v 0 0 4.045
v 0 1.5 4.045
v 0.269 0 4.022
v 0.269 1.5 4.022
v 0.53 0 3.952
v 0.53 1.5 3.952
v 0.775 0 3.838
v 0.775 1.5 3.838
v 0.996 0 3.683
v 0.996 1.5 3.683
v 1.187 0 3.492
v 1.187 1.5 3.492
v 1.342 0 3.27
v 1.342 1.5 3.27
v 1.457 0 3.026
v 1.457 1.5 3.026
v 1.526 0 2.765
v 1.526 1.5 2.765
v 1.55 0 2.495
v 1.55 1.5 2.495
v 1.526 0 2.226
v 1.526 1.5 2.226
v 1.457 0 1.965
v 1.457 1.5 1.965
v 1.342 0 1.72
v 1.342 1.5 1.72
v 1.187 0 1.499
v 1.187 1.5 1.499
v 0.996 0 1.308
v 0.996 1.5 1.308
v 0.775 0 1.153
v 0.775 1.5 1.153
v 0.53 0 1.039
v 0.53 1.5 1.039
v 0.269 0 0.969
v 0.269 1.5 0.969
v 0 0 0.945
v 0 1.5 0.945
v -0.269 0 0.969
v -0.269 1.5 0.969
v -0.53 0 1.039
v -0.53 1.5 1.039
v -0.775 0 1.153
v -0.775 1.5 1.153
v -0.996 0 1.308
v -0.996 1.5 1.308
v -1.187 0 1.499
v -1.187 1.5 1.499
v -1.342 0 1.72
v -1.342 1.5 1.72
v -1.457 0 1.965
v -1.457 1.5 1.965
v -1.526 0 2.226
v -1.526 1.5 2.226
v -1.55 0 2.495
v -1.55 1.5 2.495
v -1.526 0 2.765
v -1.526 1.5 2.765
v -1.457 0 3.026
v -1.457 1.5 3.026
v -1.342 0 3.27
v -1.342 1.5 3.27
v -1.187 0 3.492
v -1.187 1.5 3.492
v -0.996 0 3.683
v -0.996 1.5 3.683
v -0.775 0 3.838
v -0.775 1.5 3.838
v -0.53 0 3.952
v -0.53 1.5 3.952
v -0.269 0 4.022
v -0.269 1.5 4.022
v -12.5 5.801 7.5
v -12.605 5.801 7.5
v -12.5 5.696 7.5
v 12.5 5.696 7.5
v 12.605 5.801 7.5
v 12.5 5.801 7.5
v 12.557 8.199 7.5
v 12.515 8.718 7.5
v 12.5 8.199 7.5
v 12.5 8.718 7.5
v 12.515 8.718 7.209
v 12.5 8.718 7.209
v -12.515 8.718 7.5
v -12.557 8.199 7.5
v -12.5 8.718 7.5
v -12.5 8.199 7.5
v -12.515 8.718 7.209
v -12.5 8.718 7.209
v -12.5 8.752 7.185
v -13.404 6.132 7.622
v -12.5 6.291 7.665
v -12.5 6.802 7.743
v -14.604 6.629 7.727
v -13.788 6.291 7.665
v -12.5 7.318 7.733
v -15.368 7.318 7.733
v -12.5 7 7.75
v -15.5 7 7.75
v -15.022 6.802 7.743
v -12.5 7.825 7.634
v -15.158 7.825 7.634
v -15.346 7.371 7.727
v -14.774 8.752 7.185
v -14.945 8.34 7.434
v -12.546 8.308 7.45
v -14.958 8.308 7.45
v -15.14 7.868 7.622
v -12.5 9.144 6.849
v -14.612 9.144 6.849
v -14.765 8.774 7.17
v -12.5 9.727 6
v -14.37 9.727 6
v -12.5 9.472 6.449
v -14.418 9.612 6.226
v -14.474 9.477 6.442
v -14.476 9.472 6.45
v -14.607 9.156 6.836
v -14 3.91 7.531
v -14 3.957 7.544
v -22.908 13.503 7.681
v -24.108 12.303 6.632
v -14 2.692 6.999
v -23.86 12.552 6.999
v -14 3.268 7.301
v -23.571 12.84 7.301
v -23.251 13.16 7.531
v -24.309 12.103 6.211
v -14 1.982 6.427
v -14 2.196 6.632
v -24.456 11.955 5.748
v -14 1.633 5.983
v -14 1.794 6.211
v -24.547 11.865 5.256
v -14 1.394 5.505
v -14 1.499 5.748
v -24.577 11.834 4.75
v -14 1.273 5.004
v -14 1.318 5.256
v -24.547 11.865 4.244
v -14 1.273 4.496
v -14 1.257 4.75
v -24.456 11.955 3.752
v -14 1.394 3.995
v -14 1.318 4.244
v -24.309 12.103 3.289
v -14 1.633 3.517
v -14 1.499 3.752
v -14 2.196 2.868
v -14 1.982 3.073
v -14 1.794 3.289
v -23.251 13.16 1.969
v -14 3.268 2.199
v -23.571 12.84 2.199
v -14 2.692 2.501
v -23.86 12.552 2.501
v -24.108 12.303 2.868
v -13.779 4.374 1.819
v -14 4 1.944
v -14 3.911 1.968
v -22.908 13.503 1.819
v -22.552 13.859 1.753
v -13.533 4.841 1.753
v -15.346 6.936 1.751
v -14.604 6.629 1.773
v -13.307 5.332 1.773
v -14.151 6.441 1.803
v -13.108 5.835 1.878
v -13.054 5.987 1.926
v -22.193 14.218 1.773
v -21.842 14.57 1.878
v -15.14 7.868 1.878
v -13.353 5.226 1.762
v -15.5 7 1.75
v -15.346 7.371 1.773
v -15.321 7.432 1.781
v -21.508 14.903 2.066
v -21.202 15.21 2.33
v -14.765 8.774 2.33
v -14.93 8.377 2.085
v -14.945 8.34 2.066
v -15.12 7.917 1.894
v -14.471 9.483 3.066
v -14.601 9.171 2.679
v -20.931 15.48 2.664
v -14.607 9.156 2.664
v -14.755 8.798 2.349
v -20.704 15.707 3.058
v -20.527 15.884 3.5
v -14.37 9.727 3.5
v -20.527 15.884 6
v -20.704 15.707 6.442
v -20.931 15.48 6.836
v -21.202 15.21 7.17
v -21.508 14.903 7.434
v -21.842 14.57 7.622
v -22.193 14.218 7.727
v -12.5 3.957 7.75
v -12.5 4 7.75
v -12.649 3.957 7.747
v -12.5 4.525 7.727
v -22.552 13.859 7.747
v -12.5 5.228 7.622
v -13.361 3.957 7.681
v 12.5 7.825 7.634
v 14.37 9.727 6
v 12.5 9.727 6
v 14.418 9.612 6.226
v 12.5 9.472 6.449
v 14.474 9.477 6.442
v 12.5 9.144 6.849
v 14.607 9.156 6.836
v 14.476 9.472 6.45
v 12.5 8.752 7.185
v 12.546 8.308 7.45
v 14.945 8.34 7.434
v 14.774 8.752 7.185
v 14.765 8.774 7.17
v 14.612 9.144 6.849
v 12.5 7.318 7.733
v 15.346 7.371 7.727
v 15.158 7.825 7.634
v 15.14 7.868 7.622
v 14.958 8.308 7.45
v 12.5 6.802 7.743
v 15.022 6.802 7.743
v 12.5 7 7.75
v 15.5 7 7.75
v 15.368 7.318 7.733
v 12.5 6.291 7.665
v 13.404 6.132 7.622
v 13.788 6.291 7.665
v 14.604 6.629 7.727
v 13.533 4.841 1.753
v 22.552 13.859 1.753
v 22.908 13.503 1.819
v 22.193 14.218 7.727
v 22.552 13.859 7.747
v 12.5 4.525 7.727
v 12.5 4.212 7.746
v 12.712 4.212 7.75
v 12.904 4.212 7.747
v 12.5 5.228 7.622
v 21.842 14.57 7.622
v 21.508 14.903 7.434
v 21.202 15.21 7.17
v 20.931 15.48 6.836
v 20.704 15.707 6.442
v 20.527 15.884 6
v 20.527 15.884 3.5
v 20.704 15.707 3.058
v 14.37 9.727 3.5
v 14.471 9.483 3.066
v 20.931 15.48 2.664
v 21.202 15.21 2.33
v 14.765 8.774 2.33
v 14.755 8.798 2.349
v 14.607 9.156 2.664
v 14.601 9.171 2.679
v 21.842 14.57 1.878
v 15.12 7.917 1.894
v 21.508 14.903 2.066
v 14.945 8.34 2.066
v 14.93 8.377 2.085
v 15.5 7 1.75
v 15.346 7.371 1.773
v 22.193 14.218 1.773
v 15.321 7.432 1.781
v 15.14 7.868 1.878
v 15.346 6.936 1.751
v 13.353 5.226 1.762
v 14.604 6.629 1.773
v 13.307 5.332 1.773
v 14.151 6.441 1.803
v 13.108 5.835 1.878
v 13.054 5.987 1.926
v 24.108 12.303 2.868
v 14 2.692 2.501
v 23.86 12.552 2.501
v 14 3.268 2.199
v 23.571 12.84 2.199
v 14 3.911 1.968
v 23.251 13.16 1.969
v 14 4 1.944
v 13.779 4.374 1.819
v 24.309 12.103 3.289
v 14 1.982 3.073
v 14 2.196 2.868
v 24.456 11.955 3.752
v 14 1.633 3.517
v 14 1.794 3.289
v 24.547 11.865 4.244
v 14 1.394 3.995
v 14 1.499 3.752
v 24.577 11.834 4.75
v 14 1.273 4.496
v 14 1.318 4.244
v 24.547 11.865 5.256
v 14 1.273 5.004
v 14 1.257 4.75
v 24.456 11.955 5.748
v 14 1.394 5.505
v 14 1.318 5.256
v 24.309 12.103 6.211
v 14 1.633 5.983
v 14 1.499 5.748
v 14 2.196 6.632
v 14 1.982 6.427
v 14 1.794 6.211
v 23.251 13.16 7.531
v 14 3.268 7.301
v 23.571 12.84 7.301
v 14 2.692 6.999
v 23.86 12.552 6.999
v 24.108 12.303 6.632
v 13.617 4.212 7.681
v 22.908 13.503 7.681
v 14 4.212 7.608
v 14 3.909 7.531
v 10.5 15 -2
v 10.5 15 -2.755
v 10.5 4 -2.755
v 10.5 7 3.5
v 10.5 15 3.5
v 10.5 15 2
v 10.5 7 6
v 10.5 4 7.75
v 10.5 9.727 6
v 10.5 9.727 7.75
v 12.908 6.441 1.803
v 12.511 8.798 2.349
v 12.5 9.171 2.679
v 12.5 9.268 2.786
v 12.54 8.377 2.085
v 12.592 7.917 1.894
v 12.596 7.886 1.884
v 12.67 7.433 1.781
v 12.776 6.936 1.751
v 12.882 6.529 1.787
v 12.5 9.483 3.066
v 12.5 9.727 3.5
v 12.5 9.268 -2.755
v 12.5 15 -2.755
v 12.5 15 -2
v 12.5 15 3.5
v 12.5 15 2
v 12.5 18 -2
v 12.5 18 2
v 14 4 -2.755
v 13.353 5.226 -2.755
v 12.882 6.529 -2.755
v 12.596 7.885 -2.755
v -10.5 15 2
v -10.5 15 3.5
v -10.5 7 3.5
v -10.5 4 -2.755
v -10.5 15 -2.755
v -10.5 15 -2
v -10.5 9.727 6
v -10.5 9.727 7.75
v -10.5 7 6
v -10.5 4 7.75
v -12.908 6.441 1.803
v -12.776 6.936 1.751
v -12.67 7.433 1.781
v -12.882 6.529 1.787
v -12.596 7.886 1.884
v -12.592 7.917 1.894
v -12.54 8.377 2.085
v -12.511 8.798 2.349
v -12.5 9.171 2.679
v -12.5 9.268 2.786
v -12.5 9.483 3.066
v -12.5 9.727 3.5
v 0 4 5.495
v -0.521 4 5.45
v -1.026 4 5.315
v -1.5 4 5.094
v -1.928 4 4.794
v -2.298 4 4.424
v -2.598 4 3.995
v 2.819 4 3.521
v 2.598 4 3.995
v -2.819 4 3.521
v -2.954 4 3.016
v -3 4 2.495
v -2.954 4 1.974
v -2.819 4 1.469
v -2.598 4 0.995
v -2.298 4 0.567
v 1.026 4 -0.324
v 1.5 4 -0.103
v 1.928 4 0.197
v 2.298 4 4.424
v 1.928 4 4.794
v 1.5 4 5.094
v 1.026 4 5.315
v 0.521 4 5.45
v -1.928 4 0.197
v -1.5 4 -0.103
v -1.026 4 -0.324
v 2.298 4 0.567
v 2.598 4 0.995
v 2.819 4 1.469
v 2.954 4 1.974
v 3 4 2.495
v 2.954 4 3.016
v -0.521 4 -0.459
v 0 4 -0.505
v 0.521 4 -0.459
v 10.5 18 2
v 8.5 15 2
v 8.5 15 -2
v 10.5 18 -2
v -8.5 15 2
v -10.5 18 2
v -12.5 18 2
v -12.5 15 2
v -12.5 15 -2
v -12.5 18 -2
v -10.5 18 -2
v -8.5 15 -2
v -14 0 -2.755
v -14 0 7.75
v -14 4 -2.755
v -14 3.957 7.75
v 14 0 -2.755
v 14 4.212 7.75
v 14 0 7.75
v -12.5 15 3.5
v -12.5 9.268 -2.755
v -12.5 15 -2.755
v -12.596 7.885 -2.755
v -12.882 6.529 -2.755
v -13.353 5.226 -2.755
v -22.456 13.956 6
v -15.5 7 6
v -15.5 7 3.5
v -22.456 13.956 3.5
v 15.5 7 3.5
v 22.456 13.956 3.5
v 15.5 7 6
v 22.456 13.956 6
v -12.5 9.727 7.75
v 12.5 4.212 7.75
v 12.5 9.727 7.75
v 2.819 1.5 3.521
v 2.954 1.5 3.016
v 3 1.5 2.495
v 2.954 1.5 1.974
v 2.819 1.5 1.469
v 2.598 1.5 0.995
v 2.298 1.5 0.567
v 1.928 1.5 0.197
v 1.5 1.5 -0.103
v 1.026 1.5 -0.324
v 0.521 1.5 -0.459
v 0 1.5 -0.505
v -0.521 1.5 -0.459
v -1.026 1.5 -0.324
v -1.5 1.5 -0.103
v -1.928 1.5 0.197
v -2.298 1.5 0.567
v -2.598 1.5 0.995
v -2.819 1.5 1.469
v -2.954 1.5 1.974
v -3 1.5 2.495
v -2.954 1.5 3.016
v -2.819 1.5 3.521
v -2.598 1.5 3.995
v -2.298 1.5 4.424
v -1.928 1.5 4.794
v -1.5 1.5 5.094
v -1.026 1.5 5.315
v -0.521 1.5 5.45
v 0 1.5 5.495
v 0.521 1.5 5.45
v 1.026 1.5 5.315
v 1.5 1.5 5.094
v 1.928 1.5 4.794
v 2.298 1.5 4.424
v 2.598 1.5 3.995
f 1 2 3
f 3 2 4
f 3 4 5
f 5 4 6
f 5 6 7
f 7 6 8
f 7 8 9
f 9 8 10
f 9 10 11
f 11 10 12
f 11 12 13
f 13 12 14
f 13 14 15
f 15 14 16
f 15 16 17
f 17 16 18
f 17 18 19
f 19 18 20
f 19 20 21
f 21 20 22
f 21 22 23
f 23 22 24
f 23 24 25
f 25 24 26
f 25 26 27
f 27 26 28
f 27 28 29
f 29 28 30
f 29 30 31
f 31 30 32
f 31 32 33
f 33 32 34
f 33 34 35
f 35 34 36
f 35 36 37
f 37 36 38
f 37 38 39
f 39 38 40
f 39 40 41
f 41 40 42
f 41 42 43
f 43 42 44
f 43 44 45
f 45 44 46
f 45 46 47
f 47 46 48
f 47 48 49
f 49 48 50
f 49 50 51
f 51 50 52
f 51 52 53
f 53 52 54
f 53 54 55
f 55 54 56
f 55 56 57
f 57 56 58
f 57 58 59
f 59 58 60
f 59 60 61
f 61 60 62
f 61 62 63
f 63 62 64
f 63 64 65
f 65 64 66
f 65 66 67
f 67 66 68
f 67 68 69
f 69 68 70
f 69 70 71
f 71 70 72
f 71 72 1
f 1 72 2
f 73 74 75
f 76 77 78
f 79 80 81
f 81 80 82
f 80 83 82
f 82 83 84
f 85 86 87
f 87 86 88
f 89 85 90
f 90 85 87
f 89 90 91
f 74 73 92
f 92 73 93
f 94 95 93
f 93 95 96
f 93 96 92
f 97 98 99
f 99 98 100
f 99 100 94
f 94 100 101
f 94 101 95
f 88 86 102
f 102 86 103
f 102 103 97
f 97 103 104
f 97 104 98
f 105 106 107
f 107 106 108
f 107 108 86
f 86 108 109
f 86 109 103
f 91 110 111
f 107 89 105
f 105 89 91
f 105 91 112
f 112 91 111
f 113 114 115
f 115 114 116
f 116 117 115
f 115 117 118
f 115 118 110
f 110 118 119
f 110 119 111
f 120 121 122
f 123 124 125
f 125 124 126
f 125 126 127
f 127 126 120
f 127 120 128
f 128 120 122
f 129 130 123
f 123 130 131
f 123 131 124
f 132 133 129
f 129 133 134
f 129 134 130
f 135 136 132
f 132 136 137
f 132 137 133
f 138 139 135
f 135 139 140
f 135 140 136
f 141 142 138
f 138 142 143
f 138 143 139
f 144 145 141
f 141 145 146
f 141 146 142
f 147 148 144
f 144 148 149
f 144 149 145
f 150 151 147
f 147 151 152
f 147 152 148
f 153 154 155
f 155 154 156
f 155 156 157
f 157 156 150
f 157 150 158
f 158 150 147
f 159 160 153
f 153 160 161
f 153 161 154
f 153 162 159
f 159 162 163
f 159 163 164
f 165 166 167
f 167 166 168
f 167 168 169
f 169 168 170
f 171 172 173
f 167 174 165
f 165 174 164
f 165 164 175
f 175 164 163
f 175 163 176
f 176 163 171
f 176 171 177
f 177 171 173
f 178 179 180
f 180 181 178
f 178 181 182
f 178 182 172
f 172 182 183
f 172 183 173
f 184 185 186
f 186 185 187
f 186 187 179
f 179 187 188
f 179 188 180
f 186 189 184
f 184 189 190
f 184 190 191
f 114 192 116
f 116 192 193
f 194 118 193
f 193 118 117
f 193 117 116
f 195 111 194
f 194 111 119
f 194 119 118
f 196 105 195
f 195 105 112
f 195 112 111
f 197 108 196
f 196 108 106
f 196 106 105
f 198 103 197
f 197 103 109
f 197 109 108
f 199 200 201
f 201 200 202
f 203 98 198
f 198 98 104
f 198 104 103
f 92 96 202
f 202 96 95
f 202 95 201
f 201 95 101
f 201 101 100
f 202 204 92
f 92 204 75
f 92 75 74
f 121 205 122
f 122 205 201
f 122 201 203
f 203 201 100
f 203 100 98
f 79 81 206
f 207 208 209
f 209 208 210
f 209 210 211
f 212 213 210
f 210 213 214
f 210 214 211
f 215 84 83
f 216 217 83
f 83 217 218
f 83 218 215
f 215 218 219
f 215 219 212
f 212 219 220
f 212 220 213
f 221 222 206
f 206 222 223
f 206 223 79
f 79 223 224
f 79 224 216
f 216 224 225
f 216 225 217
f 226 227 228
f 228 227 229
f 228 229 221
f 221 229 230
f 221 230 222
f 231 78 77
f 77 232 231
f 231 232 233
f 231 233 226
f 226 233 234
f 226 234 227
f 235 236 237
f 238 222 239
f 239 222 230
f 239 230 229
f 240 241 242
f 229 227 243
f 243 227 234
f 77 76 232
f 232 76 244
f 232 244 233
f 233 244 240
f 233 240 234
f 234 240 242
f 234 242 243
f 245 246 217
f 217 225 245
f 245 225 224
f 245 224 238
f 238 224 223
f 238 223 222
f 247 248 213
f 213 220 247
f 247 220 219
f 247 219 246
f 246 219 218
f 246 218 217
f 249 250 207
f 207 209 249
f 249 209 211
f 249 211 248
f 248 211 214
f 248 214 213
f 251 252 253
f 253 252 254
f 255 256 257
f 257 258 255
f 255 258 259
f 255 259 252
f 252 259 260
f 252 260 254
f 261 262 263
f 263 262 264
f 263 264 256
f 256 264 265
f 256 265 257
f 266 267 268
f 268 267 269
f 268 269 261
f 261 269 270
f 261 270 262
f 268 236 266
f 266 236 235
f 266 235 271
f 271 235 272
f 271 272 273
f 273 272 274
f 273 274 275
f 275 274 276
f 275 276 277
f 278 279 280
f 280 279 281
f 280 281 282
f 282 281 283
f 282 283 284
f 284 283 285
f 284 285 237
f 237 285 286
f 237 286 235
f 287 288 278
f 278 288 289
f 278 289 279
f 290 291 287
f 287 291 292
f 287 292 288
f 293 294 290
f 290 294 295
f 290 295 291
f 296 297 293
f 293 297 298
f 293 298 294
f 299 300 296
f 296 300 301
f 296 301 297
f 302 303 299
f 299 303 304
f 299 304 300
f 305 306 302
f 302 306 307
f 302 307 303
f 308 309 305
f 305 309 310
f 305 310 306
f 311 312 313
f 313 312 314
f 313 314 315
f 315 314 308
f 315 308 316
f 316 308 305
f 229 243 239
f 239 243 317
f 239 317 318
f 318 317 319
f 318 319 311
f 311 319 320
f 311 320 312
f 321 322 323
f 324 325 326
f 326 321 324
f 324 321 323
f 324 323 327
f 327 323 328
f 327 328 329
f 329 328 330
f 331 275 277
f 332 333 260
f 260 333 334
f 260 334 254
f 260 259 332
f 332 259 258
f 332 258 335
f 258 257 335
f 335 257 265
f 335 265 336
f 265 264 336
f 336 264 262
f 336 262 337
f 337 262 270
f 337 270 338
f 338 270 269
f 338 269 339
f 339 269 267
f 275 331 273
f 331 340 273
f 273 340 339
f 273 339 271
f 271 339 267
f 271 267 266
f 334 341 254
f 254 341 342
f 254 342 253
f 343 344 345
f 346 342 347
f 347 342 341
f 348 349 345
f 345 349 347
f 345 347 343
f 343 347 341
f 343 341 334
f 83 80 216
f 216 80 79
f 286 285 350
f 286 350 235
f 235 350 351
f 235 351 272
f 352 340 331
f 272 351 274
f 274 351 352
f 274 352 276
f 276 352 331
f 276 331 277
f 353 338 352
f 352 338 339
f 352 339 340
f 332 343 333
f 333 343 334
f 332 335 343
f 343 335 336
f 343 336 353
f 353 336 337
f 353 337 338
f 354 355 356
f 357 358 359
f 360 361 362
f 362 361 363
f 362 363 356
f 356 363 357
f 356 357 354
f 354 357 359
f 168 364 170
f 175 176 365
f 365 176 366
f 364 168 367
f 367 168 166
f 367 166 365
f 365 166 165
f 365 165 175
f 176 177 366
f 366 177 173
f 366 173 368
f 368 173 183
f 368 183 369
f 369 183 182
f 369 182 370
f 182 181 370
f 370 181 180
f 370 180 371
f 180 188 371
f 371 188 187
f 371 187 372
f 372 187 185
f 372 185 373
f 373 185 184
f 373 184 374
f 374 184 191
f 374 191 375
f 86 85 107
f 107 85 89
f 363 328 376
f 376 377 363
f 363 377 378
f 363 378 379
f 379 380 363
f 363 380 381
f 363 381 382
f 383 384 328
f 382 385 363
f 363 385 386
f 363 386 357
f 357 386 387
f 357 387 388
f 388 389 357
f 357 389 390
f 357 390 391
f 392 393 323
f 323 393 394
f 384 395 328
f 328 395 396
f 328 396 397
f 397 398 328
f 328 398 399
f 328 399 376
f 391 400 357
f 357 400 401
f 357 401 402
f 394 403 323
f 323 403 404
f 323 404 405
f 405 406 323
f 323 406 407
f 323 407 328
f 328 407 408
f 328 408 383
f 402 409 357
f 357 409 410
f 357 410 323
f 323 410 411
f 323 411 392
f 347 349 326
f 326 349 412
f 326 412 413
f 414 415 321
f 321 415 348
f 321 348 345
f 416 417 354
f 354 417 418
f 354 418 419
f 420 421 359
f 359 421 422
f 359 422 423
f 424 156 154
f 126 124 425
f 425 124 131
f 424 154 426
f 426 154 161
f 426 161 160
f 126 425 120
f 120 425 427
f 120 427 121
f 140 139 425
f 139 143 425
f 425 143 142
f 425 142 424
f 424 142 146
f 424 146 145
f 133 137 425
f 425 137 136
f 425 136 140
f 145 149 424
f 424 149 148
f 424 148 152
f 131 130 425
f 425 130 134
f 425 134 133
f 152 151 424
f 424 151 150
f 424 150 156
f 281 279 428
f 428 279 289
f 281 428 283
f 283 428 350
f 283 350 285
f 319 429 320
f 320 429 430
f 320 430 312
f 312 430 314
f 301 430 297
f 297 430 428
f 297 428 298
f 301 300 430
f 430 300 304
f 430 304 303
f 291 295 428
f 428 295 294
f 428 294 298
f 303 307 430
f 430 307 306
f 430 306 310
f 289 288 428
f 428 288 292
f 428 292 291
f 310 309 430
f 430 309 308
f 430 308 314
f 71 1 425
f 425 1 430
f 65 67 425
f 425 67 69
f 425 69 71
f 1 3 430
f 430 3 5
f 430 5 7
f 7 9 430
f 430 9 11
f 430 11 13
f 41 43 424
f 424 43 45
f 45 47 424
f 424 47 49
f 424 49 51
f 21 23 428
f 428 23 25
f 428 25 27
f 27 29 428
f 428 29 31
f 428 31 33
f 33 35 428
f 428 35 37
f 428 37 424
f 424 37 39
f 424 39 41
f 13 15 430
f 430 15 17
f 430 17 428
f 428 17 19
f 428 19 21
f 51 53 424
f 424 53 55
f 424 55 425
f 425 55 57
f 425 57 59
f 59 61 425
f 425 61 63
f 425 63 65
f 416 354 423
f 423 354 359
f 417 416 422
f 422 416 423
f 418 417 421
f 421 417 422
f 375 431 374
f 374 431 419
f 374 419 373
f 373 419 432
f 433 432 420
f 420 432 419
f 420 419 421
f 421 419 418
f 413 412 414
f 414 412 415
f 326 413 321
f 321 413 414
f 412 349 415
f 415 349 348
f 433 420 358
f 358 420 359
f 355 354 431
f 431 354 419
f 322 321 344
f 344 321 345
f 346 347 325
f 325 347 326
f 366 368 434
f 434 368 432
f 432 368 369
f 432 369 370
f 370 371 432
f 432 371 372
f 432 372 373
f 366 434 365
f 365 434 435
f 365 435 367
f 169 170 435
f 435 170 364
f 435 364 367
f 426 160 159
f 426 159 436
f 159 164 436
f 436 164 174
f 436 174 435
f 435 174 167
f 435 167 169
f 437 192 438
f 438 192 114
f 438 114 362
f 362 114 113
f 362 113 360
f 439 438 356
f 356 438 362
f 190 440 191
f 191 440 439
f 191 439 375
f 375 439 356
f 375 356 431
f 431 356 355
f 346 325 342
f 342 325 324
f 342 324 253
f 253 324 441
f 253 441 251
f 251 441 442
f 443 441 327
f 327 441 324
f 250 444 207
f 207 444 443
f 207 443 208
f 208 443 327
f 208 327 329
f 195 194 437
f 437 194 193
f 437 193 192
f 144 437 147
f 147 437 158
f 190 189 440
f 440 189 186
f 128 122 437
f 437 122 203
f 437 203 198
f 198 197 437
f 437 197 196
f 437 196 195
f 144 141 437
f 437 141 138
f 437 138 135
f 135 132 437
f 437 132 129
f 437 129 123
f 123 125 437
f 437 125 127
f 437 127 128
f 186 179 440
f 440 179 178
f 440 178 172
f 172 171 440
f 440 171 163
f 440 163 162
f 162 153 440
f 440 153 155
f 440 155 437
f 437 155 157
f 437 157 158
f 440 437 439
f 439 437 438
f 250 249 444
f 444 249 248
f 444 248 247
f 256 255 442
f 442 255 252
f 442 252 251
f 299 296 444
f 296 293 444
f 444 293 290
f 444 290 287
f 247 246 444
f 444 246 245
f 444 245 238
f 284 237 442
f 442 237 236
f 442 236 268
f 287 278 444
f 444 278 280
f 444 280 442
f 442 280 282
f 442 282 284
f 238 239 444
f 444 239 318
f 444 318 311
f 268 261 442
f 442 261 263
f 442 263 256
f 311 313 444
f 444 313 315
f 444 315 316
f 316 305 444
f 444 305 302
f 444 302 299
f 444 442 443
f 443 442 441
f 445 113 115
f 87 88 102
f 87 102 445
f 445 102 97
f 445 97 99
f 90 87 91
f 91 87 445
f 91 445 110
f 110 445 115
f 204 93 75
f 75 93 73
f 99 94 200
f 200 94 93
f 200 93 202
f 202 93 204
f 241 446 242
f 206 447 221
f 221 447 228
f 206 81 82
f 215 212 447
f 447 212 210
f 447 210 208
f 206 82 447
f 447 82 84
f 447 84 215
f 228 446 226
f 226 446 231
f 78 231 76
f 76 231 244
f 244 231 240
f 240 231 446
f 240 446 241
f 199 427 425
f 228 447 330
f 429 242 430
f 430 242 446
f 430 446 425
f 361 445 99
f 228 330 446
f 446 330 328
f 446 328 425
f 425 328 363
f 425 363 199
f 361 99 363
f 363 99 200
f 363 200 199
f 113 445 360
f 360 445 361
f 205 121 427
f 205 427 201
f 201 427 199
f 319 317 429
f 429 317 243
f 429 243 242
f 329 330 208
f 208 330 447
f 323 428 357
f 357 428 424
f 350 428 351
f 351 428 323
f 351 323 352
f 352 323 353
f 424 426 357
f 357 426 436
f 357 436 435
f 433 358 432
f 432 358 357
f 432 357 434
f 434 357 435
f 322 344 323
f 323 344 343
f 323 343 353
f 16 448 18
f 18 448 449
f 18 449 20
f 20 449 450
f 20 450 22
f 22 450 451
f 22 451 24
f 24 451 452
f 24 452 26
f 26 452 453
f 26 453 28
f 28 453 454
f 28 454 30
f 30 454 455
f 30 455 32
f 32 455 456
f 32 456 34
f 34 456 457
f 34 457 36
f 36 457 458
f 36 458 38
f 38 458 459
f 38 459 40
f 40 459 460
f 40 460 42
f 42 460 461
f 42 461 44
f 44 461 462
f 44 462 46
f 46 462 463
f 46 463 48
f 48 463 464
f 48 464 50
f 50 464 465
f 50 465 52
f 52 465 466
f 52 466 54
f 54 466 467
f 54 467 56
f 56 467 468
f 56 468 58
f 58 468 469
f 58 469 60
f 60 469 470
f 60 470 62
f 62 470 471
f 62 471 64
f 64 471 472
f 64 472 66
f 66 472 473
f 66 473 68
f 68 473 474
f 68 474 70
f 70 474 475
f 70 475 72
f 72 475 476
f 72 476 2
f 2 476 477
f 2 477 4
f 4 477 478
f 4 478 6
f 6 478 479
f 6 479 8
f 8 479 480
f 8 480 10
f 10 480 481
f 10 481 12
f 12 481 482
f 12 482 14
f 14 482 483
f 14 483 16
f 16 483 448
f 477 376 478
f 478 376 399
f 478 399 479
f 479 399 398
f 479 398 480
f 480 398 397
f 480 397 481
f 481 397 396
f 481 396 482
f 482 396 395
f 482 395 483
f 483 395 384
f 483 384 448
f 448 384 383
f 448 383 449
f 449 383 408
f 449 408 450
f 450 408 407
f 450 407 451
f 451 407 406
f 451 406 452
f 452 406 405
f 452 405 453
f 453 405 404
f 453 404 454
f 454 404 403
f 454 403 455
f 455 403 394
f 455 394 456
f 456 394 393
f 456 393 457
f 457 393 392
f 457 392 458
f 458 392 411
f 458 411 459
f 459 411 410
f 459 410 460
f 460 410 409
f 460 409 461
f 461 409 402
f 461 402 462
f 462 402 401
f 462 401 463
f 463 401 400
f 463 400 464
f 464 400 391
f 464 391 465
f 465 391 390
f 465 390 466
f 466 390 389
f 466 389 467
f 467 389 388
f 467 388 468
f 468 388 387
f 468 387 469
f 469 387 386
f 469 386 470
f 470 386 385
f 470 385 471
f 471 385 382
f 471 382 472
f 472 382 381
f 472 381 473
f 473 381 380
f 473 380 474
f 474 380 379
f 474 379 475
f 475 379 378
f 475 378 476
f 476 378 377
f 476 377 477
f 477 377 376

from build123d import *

# Parameters (mm, degrees)
SKETCH1_W                           = 28
SKETCH1_H                           = 15
BOSS_EXTRUDE1_DEPTH                 = 4
SKETCH2_W                           = 2
SKETCH2_H                           = 14
BOSS_EXTRUDE2_DEPTH                 = 2
SKETCH3_W                           = 2
SKETCH3_H                           = 11
BOSS_EXTRUDE3_DEPTH                 = 7.5
FILLET1_R                           = 10
CUT_EXTRUDE5_REACH                  = 33.313
CUT_EXTRUDE5_END_RADIUS             = 10
CUT_EXTRUDE5_DIRECTION_2_REACH      = 33.313
CUT_EXTRUDE5_DIRECTION_2_END_RADIUS = 10
BOSS_EXTRUDE4_DEPTH                 = 5
CUT_EXTRUDE6_DEPTH                  = 2
CUT_EXTRUDE6_DEPTH_BACK             = 15
SKETCH22_W                          = 21
SKETCH22_H                          = 5.222778623
BOSS_EXTRUDE6_START                 = -1.5
BOSS_EXTRUDE6_DEPTH                 = 1.75
CUT_EXTRUDE7_REACH                  = 43.938
SKETCH25_W                          = 4.745430675
SKETCH25_H                          = 15
CUT_EXTRUDE7_DIRECTION_2_REACH      = 43.938
SKETCH26_R                          = 1.55
CUT_EXTRUDE8_DEPTH                  = 4
SKETCH27_R                          = 3
CUT_EXTRUDE9_DEPTH                  = 2.5


with BuildPart() as part:
    # Sketch1 → Boss-Extrude1 (new body)
    with BuildSketch(Plane(origin=(0, 0, 0), x_dir=(1, 0, 0), z_dir=(0, 1, 0))):
        Rectangle(SKETCH1_W, SKETCH1_H)
    extrude(amount=BOSS_EXTRUDE1_DEPTH)

    # Sketch2 → Boss-Extrude2 (add, symmetric)
    with BuildSketch(Plane.XY):
        with Locations((-11.5, 11)):
            Rectangle(SKETCH2_W, SKETCH2_H)
        Polygon((-8.5, 15), (-10.5, 18), (-10.5, 15), align=None)
        Polygon((8.5, 15), (10.5, 15), (10.5, 18), align=None)
        with Locations((11.5, 11)):
            Rectangle(SKETCH2_W, SKETCH2_H)
    extrude(amount=BOSS_EXTRUDE2_DEPTH, both=True)

    # Sketch3 → Boss-Extrude3 (add, symmetric)
    with BuildSketch(Plane.XY):
        with Locations((-11.5, 9.5)):
            Rectangle(SKETCH3_W, SKETCH3_H)
        with Locations((11.5, 9.5)):
            Rectangle(SKETCH3_W, SKETCH3_H)
    extrude(amount=BOSS_EXTRUDE3_DEPTH, both=True)

    # Fillet1
    # the kernel refuses this fillet: 10 mm, written as the material it adds along each edge
    with BuildSketch(Plane(origin=(12.5, 4, -7.5), x_dir=(1, 0, 0), z_dir=(0, 0, 1))) as fillet1_piece_1:
        with BuildLine():
            CenterArc((10, 5.267826876), FILLET1_R, 180, 31.788330617)
            Line((0, 5.267826876), (-0.2, 5.267826876))
            Line((-0.2, 5.267826876), (-0.2, 0))
            Line((-0.2, 0), (0, -0.2))
            ThreePointArc((0, -0.2), (0.75, -0.2), (1.33, -0.105356538))
            Line((1.33, -0.105356538), (1.5, 0))
        make_face()
    extrude(amount=15)
    with BuildSketch(Plane(origin=(-12.5, 4, 7.5), x_dir=(0, 1, 0), z_dir=(0, 0, -1))) as fillet1_piece_2:
        with BuildLine():
            CenterArc((5.267826876, -10), FILLET1_R, 90, 31.788330617)
            Line((0, -1.5), (-0.105356538, -1.33))
            ThreePointArc((-0.105356538, -1.33), (-0.2, -0.75), (-0.2, 0))
            Line((-0.2, 0), (0, 0.2))
            Line((0, 0.2), (5.267826876, 0.2))
            Line((5.267826876, 0.2), (5.267826876, 0))
        make_face()
    extrude(amount=15)

    # Cut-Extrude5: up to this cylinder (the profile starts outside it)
    cut_extrude5_end = Plane(origin=(-22.5, 9.267826876, 5.390493), z_dir=(0, 0, -1)) * Cylinder(CUT_EXTRUDE5_END_RADIUS, 87.626, mode=Mode.PRIVATE)
    # Sketch13 → Cut-Extrude5 (cut, up to the surface)
    with BuildSketch(Plane(origin=(-10.5, 0, 0), x_dir=(0, 0, -1), z_dir=(1, 0, 0)), mode=Mode.PRIVATE) as cut_extrude5_sk1:
        Polygon((-3.5, 15), (-6, 15), (-7.5, 15), (-7.5, 8.718379218), (-6, 8.718379218), (-6, 7), (-3.5, 7), align=None)
    cut_extrude5_tool1 = extrude(cut_extrude5_sk1.sketch, amount=-CUT_EXTRUDE5_REACH, mode=Mode.PRIVATE) - cut_extrude5_end
    add(cut_extrude5_tool1.solids().sort_by_distance((-10.5, 11.275152, 5.390493))[0], mode=Mode.SUBTRACT)

    # Cut-Extrude5 direction 2: up to this cylinder (the profile starts outside it)
    cut_extrude5_direction_2_end = Plane(origin=(22.5, 9.267826876, 5.390493), z_dir=(0, 0, 1)) * Cylinder(CUT_EXTRUDE5_DIRECTION_2_END_RADIUS, 87.626, mode=Mode.PRIVATE)
    # Sketch13 → Cut-Extrude5 direction 2 (cut, up to the surface)
    with BuildSketch(Plane(origin=(-10.5, 0, 0), x_dir=(0, 0, -1), z_dir=(1, 0, 0)), mode=Mode.PRIVATE) as cut_extrude5_direction_2_sk1:
        Polygon((-3.5, 15), (-6, 15), (-7.5, 15), (-7.5, 8.718379218), (-6, 8.718379218), (-6, 7), (-3.5, 7), align=None)
    cut_extrude5_direction_2_tool1 = extrude(cut_extrude5_direction_2_sk1.sketch, amount=CUT_EXTRUDE5_DIRECTION_2_REACH, mode=Mode.PRIVATE) - cut_extrude5_direction_2_end
    add(cut_extrude5_direction_2_tool1.solids().sort_by_distance((-10.5, 11.275152, 5.390493))[0], mode=Mode.SUBTRACT)

    # Sketch14 → Boss-Extrude4 (add)
    with BuildSketch(Plane(origin=(-10.5, 0, 0), x_dir=(0, 0, -1), z_dir=(1, 0, 0))):
        with BuildLine():
            Line((-3.5, 9.727178029), (-3.5, 7))
            Line((-3.5, 7), (-6, 7))
            Line((-6, 7), (-6, 9.727178029))
            ThreePointArc((-6, 9.727178029), (-4.75, 4), (-3.5, 9.727178029))
        make_face()
    boss_extrude4 = extrude(amount=-BOSS_EXTRUDE4_DEPTH)

    # Sweep3: sweep along a path in Sketch17
    with BuildLine(Plane.XY.offset(5)) as sweep3_path:
        Line((-22.411313552, 14), (-11.517237777, 3.105924225))
    # Sketch21 → Sweep3 (sweep)
    with BuildSketch(Plane(origin=(-18.205656776, 18.205656776, 0), x_dir=(-0.7071067811865509, -0.7071067811865441, 0), z_dir=(0.7071067811865441, -0.7071067811865509, 0))):
        with BuildLine():
            Line((6.01040764, -6), (6.01040764, -3.5))
            Line((6.01040764, -3.5), (3.283229611, -3.5))
            ThreePointArc((3.283229611, -3.5), (9.01040764, -4.75), (3.283229611, -6))
            Line((3.283229611, -6), (6.01040764, -6))
        make_face()
    sweep3 = sweep(path=sweep3_path.line)

    # Mirror1: Boss-Extrude4, Sweep3 across plane
    add(boss_extrude4.mirror(Plane(origin=(0, 0, 0), x_dir=(0, 0, 1), z_dir=(1, 0, 0))))
    add(sweep3.mirror(Plane(origin=(0, 0, 0), x_dir=(0, 0, 1), z_dir=(1, 0, 0))))

    # Sketch22 → Cut-Extrude6 (cut, two sides: drawn at the far end of the back side and taken through both)
    with BuildSketch(Plane.XY.offset(7.5).offset(-CUT_EXTRUDE6_DEPTH_BACK)):
        with Locations((0, 6.611389311)):
            Rectangle(SKETCH22_W, SKETCH22_H)
    extrude(amount=CUT_EXTRUDE6_DEPTH + CUT_EXTRUDE6_DEPTH_BACK, mode=Mode.SUBTRACT)

    # Sketch24 → Boss-Extrude6 (add)
    with BuildSketch(Plane.XY.offset(7.5).offset(BOSS_EXTRUDE6_START)):
        Polygon((-10.5, 9.727178029), (-12.5, 9.727178029), (-12.5, 3.956694639), (-14, 3.956694639), (-14, 0), (14, 0), (14, 4.212052915), (12.5, 4.212052915), (12.5, 9.727178029), (10.5, 9.727178029), (10.5, 4), (-10.5, 4), align=None)
    extrude(amount=BOSS_EXTRUDE6_DEPTH)

    # Cut-Extrude7: up to this face of the body (flat: up to its plane)
    cut_extrude7_end = Plane(part.part.faces().sort_by_distance((14, 1.807333916, -0.907267183))[0])
    # Sketch25 → Cut-Extrude7 (cut, up to the picked face)
    with BuildSketch(Plane.ZY.offset(12.5), mode=Mode.PRIVATE) as cut_extrude7_sk1:
        with Locations((-5.127284663, 7.5)):
            Rectangle(SKETCH25_W, SKETCH25_H)
    cut_extrude7_tool1 = split(extrude(cut_extrude7_sk1.sketch, amount=-CUT_EXTRUDE7_REACH, mode=Mode.PRIVATE), bisect_by=cut_extrude7_end, keep=Keep.BOTH, mode=Mode.PRIVATE)
    add(cut_extrude7_tool1.solids().sort_by(Axis((-12.5, 7.5, -5.127285), (1, 0, 0)))[0], mode=Mode.SUBTRACT)

    # Cut-Extrude7 direction 2: up to this face of the body (flat: up to its plane)
    cut_extrude7_direction_2_end = Plane(part.part.faces().sort_by_distance((-14, 1.805327472, -0.914845046))[0])
    # Sketch25 → Cut-Extrude7 direction 2 (cut, up to the picked face)
    with BuildSketch(Plane.ZY.offset(12.5), mode=Mode.PRIVATE) as cut_extrude7_direction_2_sk1:
        with Locations((-5.127284663, 7.5)):
            Rectangle(SKETCH25_W, SKETCH25_H)
    cut_extrude7_direction_2_tool1 = split(extrude(cut_extrude7_direction_2_sk1.sketch, amount=CUT_EXTRUDE7_DIRECTION_2_REACH, mode=Mode.PRIVATE), bisect_by=cut_extrude7_direction_2_end, keep=Keep.BOTH, mode=Mode.PRIVATE)
    add(cut_extrude7_direction_2_tool1.solids().sort_by(Axis((-12.5, 7.5, -5.127285), (-1, 0, 0)))[0], mode=Mode.SUBTRACT)

    # Sketch26 → Cut-Extrude8 (cut)
    with BuildSketch(Plane(origin=(0, 4, 0), x_dir=(1, 0, 0), z_dir=(0, 1, 0))):
        with Locations(Location((0, -2.495430675, 0), (0, 0, 270))):
            Circle(SKETCH26_R)
    extrude(amount=-CUT_EXTRUDE8_DEPTH, mode=Mode.SUBTRACT)

    # Sketch27 → Cut-Extrude9 (cut)
    with BuildSketch(Plane(origin=(0, 4, 0), x_dir=(1, 0, 0), z_dir=(0, 1, 0))):
        with Locations(Location((0, -2.495430675, 0), (0, 0, 270))):
            Circle(SKETCH27_R)
    extrude(amount=-CUT_EXTRUDE9_DEPTH, mode=Mode.SUBTRACT)


solid = part.part
